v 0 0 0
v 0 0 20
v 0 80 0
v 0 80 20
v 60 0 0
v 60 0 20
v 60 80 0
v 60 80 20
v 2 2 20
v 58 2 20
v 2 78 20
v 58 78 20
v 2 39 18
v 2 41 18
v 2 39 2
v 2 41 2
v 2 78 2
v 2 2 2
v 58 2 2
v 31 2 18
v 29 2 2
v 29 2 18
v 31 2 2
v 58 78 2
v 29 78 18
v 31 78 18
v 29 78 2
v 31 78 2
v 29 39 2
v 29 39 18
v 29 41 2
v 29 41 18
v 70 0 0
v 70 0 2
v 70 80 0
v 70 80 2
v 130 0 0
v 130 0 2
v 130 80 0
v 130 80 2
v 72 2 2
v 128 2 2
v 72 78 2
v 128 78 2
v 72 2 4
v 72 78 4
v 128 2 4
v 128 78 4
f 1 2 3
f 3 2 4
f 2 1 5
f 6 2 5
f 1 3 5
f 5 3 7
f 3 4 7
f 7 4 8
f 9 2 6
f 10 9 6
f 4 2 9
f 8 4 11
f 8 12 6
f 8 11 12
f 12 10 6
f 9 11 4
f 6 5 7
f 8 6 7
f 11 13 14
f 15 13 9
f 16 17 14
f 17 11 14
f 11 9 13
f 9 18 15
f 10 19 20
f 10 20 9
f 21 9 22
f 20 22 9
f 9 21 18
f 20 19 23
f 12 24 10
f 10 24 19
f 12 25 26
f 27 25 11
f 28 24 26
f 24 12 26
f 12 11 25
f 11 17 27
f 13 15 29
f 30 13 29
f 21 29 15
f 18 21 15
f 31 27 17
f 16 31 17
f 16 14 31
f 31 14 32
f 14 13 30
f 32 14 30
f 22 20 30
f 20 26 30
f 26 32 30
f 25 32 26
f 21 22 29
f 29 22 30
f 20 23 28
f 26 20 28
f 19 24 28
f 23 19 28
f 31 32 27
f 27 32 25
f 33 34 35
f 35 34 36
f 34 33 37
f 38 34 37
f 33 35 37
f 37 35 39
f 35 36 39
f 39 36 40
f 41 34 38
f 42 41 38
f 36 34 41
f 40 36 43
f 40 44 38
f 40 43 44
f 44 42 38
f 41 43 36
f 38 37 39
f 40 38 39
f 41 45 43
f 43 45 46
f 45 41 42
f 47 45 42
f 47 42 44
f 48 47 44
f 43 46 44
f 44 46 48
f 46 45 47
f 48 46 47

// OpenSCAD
//Leone Ermer
/*Parametic Box with Dividers and Lid
2013 3D Fabrication

Note: 
To remove Lid and Dividers make false
if fourSections = true the box is divided into 4 sections
if fourSections = false the box only has 3 sections

*/

//Box Controls
boxWidth = 60; // Y axis
boxLength = 80; // X axis
boxDepth = 20; 
boxThickness = 2;

// Box Divider Controls
dividerThickness = boxThickness;
yDivider = true; // Divider that runs along y axis
xDivider = true; // Divider that runs along x axis
fourSections = false; // true = 4 sections / false = 3 sections
//Controls Dividers' Positions along respective axes
yDividerPos = (boxWidth/2)-(dividerThickness/2); //Currently Centered
xDividerPos = (boxLength/2)-(dividerThickness/2); //Currently Centered
xDividerWidth = 80;

// Lid Controls
lid = true; //True for a lid, False for no lid

//Adds Box
	box();
//Adds Dividers
	if(yDivider == true){
		yDivider();
	}
	if(xDivider == true){
		xDivider();
	}
// Adds Lid
	if(lid == true){
		translate([boxWidth + 10, 0, 0])
		lid();
	}


module box(){
	difference(){
		cube([boxWidth,boxLength,boxDepth]);
		translate([boxThickness,boxThickness,boxThickness])
		cube([boxWidth-(boxThickness *2),boxLength-(boxThickness *2),boxDepth-boxThickness]);
	}
}

module lid(){
		cube([boxWidth,boxLength,boxThickness]);
		translate([boxThickness,boxThickness,boxThickness])
		cube([boxWidth-(boxThickness *2),boxLength-(boxThickness *2),boxThickness]);
}

module yDivider(){
		translate([yDividerPos, 0, 0])
		cube([dividerThickness,boxLength,boxDepth-boxThickness]);
}
module xDivider(){
	translate([0, xDividerPos, 0])
	if(fourSections == true){
		cube([boxWidth,dividerThickness,boxDepth-boxThickness]);
	}
	else{
	cube([yDividerPos,dividerThickness,boxDepth-boxThickness]);
	}
}
